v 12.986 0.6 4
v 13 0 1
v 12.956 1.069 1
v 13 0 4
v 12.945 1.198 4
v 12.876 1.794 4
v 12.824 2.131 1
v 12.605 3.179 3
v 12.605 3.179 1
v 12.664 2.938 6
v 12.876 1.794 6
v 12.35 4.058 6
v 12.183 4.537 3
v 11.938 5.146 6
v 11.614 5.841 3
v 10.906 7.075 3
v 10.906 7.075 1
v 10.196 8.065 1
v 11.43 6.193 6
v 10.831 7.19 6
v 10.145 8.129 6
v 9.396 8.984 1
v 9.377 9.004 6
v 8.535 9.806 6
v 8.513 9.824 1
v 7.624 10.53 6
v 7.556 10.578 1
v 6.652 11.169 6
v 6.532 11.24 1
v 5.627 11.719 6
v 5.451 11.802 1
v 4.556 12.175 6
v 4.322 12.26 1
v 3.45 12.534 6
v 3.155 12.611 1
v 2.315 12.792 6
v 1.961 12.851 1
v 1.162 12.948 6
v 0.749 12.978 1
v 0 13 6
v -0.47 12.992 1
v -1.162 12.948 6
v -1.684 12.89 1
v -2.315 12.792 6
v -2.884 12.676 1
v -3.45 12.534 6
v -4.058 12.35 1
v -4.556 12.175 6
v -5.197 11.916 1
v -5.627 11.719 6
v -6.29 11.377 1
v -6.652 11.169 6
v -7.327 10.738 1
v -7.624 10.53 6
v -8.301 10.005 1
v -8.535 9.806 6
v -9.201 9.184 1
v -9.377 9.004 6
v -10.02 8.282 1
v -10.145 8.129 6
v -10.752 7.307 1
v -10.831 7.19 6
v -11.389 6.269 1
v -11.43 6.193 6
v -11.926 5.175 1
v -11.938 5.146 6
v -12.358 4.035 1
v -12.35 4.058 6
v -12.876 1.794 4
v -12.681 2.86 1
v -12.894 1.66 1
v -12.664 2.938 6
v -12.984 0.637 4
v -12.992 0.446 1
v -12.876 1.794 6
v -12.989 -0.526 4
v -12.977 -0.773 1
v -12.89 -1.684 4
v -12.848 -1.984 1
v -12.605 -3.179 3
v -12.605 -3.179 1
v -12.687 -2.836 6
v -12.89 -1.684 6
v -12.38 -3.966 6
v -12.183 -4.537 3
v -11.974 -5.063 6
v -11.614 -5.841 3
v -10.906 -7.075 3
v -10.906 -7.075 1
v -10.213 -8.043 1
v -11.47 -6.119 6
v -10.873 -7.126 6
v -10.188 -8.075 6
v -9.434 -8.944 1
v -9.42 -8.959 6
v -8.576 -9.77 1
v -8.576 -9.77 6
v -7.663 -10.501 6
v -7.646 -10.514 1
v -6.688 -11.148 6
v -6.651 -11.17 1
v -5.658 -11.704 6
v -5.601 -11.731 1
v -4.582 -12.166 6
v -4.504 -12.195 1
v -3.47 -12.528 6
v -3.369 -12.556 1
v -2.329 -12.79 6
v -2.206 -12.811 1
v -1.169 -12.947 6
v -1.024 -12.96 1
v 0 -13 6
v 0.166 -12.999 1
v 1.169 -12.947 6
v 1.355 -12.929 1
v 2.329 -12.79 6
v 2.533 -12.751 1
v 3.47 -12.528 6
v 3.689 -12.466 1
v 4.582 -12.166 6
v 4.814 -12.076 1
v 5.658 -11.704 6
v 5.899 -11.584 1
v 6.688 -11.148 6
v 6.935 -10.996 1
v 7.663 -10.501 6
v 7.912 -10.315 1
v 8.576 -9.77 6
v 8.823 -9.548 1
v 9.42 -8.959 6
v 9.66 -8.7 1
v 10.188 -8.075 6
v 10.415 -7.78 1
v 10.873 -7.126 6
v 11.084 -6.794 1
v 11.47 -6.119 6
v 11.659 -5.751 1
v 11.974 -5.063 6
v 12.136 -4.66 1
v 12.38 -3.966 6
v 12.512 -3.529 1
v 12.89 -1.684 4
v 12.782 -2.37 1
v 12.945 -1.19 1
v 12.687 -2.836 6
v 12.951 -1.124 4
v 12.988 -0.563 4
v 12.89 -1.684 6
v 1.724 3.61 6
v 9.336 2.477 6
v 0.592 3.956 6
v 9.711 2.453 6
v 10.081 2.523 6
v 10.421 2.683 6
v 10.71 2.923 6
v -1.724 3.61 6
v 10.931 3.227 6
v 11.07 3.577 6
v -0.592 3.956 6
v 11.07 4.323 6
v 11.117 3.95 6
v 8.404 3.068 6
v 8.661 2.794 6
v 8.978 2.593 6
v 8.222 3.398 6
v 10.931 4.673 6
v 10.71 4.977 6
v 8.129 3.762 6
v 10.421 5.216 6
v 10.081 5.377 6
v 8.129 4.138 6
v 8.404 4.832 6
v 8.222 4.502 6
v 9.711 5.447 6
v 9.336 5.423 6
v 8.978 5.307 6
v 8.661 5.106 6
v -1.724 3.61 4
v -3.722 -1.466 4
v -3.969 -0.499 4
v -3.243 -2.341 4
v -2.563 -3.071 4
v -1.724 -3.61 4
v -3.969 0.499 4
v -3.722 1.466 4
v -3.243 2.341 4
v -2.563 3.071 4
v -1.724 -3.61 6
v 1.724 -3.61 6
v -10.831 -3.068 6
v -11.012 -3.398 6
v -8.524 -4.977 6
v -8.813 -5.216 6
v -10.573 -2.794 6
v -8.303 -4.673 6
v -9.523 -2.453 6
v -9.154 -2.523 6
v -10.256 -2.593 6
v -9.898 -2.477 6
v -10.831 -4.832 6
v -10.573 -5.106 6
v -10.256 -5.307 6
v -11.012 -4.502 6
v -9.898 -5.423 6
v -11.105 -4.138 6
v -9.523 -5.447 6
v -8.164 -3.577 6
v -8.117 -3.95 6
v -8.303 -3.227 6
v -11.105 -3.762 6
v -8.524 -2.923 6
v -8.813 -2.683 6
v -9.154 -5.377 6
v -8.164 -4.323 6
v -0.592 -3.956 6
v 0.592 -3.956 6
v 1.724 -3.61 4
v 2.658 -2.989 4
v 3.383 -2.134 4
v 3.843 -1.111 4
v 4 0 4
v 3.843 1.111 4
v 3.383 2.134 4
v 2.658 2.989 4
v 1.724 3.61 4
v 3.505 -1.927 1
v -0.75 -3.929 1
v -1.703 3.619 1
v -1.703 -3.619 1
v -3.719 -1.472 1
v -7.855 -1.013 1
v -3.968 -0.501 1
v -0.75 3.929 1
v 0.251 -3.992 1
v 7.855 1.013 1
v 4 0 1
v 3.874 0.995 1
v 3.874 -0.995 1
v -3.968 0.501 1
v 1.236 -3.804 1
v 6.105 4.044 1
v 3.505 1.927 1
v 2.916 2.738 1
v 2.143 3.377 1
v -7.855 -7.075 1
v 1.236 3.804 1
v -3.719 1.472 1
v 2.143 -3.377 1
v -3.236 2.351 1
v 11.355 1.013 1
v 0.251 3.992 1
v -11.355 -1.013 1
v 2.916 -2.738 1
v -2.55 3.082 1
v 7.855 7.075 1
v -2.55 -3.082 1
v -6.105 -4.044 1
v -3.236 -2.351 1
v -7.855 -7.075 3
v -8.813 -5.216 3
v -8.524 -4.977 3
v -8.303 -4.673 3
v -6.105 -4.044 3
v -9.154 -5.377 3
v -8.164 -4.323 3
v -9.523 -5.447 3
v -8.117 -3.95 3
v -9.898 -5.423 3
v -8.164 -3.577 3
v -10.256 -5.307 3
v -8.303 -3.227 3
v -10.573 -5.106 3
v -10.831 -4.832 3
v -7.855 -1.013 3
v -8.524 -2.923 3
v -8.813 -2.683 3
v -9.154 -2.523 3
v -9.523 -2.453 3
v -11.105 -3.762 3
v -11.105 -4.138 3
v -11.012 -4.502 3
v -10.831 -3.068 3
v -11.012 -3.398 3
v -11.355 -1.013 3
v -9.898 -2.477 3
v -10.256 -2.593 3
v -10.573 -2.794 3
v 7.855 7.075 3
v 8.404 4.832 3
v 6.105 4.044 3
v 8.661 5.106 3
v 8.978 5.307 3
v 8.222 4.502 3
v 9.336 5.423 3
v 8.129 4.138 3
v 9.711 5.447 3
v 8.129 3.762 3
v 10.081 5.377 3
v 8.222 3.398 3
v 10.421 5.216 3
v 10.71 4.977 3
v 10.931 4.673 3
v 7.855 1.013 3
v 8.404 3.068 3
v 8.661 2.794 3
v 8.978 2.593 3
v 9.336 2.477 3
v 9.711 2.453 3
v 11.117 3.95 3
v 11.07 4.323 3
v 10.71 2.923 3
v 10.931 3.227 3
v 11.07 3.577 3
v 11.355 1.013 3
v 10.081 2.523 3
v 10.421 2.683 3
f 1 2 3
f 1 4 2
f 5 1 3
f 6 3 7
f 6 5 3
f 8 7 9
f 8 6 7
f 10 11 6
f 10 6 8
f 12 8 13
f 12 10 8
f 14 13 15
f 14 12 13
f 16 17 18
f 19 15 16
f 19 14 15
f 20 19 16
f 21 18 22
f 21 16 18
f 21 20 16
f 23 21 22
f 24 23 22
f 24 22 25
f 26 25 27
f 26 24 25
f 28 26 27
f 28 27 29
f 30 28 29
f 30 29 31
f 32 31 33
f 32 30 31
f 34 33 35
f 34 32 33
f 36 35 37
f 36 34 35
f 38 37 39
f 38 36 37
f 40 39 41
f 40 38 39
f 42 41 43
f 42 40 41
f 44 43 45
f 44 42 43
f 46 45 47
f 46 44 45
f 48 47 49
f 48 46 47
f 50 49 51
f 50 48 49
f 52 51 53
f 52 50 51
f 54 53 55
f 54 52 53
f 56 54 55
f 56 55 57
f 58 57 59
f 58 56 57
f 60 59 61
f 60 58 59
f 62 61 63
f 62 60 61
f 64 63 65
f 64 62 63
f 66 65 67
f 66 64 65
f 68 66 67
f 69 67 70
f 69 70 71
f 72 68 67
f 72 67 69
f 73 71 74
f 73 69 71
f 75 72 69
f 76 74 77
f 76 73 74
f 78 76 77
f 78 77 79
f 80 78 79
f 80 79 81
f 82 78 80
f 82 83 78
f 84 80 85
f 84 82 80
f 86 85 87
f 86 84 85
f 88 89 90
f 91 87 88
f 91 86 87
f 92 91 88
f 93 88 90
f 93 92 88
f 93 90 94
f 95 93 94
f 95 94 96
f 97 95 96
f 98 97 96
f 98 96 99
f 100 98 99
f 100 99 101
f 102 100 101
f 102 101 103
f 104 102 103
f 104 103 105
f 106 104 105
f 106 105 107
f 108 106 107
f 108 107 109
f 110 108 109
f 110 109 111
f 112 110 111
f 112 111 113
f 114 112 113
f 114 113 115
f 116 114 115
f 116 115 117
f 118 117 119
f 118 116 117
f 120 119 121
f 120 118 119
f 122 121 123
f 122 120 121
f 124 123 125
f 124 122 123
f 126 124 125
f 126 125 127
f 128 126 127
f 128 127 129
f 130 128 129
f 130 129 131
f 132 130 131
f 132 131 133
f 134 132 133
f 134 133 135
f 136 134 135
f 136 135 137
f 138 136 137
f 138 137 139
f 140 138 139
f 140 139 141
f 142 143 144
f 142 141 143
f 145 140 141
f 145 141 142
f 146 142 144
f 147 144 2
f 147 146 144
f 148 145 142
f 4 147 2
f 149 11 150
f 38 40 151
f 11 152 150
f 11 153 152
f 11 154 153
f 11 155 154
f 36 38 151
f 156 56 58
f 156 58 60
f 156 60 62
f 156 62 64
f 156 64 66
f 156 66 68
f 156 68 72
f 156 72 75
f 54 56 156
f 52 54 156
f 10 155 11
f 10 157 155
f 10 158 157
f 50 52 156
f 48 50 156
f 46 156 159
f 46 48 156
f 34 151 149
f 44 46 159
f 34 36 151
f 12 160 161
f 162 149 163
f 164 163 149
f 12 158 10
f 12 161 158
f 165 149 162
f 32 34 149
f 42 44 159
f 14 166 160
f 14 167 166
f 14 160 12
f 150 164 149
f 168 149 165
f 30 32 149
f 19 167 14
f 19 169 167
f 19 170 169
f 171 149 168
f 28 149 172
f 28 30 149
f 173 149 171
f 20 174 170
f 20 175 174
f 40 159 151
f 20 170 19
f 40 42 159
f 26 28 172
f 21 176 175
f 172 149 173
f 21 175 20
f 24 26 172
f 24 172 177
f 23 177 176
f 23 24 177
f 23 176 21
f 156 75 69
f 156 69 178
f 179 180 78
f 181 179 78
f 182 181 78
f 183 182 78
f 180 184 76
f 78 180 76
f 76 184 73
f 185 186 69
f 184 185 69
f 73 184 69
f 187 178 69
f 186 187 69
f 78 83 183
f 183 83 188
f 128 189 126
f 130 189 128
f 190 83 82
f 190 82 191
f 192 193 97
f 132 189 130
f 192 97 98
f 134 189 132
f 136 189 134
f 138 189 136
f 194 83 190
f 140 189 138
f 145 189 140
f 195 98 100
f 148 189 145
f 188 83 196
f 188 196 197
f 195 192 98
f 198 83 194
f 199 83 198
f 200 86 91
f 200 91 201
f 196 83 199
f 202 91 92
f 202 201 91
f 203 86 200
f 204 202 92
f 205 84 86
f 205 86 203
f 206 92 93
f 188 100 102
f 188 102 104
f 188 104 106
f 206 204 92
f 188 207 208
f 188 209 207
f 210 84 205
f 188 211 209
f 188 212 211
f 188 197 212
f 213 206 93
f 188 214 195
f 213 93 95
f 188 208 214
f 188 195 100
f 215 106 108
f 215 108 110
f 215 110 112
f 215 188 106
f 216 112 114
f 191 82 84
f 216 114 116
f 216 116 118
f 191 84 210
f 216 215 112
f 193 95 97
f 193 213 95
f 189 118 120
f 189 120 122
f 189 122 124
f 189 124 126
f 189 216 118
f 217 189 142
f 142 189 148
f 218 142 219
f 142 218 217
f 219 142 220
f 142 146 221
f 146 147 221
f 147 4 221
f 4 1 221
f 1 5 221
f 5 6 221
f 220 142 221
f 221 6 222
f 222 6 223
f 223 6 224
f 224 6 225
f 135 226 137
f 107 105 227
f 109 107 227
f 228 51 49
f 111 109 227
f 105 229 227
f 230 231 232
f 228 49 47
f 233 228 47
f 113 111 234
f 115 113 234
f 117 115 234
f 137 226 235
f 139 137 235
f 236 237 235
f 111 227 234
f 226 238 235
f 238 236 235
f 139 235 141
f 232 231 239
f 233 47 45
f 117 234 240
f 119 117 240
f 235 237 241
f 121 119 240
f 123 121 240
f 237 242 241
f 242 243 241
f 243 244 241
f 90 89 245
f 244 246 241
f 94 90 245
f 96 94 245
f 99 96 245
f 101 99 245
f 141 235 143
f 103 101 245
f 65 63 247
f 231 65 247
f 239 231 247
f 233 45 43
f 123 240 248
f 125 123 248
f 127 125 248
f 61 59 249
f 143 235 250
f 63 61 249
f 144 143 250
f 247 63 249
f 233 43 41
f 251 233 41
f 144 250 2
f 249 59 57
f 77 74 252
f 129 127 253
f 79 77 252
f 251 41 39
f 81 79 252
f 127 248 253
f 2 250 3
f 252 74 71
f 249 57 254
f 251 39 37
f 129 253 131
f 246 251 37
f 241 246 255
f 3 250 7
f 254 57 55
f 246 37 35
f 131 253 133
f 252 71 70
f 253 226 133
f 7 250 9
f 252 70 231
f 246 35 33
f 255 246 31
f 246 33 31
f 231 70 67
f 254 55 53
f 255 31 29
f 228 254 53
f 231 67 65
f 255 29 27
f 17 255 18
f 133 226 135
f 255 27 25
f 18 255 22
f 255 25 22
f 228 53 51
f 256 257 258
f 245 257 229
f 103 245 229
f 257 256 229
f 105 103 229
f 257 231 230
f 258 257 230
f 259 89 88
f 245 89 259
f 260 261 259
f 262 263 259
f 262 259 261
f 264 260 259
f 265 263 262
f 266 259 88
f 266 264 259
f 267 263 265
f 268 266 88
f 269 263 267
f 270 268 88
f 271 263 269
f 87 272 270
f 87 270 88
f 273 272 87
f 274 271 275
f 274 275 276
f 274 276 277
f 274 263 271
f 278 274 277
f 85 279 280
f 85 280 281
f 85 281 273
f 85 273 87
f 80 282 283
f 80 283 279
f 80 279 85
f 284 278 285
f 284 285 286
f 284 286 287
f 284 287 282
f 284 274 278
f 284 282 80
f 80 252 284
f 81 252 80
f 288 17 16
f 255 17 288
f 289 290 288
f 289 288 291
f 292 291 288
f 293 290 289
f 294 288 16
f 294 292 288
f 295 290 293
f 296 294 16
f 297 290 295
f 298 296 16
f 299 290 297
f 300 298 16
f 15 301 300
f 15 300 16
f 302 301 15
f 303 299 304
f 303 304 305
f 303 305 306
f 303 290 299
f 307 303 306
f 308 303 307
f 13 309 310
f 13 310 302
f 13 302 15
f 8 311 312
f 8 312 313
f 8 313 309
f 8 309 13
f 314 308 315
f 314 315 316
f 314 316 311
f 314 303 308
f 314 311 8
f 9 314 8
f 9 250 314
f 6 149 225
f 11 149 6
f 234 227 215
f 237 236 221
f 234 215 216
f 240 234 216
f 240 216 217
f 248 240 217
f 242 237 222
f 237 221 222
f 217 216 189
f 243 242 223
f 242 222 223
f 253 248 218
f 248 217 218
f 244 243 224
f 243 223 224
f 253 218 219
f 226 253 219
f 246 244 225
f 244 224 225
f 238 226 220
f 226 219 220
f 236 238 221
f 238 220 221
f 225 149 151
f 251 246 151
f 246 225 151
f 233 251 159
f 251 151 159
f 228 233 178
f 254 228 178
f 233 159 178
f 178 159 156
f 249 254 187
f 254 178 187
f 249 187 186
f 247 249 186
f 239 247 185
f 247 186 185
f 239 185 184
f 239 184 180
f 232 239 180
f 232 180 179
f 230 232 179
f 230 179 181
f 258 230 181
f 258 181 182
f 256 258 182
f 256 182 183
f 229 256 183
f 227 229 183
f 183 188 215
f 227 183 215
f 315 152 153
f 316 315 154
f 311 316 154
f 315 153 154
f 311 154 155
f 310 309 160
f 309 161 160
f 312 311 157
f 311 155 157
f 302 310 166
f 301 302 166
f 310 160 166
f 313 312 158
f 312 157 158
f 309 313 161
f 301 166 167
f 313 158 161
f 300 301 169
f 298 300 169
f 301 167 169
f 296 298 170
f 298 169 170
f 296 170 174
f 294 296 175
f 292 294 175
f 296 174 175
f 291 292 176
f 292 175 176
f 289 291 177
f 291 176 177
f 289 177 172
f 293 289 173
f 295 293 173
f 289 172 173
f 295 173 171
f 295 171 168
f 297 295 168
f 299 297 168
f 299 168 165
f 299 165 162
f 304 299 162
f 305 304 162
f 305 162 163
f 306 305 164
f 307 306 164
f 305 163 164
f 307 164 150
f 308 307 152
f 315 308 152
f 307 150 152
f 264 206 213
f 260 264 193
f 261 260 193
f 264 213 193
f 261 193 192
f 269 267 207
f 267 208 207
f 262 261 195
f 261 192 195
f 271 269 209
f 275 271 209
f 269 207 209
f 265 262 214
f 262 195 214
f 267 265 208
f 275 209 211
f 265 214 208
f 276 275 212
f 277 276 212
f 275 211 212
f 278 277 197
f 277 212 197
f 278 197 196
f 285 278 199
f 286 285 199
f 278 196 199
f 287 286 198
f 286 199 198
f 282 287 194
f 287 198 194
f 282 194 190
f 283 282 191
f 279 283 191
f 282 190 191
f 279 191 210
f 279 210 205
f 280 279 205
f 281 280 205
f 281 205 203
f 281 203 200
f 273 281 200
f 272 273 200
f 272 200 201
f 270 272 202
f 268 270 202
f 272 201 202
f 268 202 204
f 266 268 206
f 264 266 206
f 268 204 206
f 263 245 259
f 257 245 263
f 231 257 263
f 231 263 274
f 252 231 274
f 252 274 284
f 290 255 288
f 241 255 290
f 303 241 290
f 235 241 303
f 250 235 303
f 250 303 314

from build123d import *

# Parameters (mm, degrees)
CYLINDER_R         = 13
CYLINDER_DEPTH     = 5
POCKET_DEPTH       = 2
SKETCH001_R        = 4
POCKET001_DEPTH    = 5.001
SKETCH002_R        = 1.5
POCKET002_DEPTH    = 5.001
POCKET003_DEPTH    = 2
POLARPATTERN_COUNT = 2


with BuildPart() as part:
    # Cylinder → Cylinder (new body)
    with BuildSketch(Plane.XY.offset(1)):
        Circle(CYLINDER_R)
    extrude(amount=CYLINDER_DEPTH)

    # Sketch → Pocket (cut)
    with BuildSketch(Plane.XY.offset(6)):
        with BuildLine():
            ThreePointArc((1.723508, 3.609643), (0, 4), (-1.723508, 3.609643))
            Line((-14.42367, 1.54169), (-1.723508, 3.609643))
            ThreePointArc((-14.42367, 1.54169), (-15.682586, 0.068213), (-14.437528, -1.416991))
            Line((-14.437528, -1.416991), (-1.723508, -3.609643))
            ThreePointArc((-1.723508, -3.609643), (0, -4), (1.723508, -3.609643))
            Line((1.723508, -3.609643), (14.437528, -1.416991))
            ThreePointArc((14.437528, -1.416991), (15.682586, 0.068213), (14.42367, 1.54169))
            Line((1.723508, 3.609643), (14.42367, 1.54169))
        make_face()
    extrude(amount=-POCKET_DEPTH, mode=Mode.SUBTRACT)

    # Sketch001 → Pocket001 (cut, through all)
    with BuildSketch(Plane.XY.offset(6)):
        Circle(SKETCH001_R)
    extrude(amount=-POCKET001_DEPTH, mode=Mode.SUBTRACT)

    # Sketch002 → Pocket002 (cut, through all)
    with BuildSketch(Plane.XY.offset(6)):
        with Locations((-9.617032, -3.94996)):
            Circle(SKETCH002_R)
        with Locations((9.617032, 3.94996)):
            Circle(SKETCH002_R)
    extrude(amount=-POCKET002_DEPTH, mode=Mode.SUBTRACT)

    # Sketch003 → Pocket003 (cut)
    with BuildSketch(Plane(origin=(0, 0, 1), x_dir=(1, 0, 0), z_dir=(0, 0, -1))):
        Polygon((-11.354812, 7.074793), (-7.854812, 7.074793), (-6.104812, 4.043704), (-7.854812, 1.012615), (-11.354812, 1.012615), (-13.104812, 4.043704), align=None)
    pocket003 = extrude(amount=-POCKET003_DEPTH, mode=Mode.SUBTRACT)

    # PolarPattern: Pocket003 ×2 about axis
    polarpattern_axis = Axis((0, 0, 1), (0, 0, -1))
    for i in range(1, POLARPATTERN_COUNT):
        add(pocket003.rotate(polarpattern_axis, i * 360 / POLARPATTERN_COUNT), mode=Mode.SUBTRACT)


solid = part.part
